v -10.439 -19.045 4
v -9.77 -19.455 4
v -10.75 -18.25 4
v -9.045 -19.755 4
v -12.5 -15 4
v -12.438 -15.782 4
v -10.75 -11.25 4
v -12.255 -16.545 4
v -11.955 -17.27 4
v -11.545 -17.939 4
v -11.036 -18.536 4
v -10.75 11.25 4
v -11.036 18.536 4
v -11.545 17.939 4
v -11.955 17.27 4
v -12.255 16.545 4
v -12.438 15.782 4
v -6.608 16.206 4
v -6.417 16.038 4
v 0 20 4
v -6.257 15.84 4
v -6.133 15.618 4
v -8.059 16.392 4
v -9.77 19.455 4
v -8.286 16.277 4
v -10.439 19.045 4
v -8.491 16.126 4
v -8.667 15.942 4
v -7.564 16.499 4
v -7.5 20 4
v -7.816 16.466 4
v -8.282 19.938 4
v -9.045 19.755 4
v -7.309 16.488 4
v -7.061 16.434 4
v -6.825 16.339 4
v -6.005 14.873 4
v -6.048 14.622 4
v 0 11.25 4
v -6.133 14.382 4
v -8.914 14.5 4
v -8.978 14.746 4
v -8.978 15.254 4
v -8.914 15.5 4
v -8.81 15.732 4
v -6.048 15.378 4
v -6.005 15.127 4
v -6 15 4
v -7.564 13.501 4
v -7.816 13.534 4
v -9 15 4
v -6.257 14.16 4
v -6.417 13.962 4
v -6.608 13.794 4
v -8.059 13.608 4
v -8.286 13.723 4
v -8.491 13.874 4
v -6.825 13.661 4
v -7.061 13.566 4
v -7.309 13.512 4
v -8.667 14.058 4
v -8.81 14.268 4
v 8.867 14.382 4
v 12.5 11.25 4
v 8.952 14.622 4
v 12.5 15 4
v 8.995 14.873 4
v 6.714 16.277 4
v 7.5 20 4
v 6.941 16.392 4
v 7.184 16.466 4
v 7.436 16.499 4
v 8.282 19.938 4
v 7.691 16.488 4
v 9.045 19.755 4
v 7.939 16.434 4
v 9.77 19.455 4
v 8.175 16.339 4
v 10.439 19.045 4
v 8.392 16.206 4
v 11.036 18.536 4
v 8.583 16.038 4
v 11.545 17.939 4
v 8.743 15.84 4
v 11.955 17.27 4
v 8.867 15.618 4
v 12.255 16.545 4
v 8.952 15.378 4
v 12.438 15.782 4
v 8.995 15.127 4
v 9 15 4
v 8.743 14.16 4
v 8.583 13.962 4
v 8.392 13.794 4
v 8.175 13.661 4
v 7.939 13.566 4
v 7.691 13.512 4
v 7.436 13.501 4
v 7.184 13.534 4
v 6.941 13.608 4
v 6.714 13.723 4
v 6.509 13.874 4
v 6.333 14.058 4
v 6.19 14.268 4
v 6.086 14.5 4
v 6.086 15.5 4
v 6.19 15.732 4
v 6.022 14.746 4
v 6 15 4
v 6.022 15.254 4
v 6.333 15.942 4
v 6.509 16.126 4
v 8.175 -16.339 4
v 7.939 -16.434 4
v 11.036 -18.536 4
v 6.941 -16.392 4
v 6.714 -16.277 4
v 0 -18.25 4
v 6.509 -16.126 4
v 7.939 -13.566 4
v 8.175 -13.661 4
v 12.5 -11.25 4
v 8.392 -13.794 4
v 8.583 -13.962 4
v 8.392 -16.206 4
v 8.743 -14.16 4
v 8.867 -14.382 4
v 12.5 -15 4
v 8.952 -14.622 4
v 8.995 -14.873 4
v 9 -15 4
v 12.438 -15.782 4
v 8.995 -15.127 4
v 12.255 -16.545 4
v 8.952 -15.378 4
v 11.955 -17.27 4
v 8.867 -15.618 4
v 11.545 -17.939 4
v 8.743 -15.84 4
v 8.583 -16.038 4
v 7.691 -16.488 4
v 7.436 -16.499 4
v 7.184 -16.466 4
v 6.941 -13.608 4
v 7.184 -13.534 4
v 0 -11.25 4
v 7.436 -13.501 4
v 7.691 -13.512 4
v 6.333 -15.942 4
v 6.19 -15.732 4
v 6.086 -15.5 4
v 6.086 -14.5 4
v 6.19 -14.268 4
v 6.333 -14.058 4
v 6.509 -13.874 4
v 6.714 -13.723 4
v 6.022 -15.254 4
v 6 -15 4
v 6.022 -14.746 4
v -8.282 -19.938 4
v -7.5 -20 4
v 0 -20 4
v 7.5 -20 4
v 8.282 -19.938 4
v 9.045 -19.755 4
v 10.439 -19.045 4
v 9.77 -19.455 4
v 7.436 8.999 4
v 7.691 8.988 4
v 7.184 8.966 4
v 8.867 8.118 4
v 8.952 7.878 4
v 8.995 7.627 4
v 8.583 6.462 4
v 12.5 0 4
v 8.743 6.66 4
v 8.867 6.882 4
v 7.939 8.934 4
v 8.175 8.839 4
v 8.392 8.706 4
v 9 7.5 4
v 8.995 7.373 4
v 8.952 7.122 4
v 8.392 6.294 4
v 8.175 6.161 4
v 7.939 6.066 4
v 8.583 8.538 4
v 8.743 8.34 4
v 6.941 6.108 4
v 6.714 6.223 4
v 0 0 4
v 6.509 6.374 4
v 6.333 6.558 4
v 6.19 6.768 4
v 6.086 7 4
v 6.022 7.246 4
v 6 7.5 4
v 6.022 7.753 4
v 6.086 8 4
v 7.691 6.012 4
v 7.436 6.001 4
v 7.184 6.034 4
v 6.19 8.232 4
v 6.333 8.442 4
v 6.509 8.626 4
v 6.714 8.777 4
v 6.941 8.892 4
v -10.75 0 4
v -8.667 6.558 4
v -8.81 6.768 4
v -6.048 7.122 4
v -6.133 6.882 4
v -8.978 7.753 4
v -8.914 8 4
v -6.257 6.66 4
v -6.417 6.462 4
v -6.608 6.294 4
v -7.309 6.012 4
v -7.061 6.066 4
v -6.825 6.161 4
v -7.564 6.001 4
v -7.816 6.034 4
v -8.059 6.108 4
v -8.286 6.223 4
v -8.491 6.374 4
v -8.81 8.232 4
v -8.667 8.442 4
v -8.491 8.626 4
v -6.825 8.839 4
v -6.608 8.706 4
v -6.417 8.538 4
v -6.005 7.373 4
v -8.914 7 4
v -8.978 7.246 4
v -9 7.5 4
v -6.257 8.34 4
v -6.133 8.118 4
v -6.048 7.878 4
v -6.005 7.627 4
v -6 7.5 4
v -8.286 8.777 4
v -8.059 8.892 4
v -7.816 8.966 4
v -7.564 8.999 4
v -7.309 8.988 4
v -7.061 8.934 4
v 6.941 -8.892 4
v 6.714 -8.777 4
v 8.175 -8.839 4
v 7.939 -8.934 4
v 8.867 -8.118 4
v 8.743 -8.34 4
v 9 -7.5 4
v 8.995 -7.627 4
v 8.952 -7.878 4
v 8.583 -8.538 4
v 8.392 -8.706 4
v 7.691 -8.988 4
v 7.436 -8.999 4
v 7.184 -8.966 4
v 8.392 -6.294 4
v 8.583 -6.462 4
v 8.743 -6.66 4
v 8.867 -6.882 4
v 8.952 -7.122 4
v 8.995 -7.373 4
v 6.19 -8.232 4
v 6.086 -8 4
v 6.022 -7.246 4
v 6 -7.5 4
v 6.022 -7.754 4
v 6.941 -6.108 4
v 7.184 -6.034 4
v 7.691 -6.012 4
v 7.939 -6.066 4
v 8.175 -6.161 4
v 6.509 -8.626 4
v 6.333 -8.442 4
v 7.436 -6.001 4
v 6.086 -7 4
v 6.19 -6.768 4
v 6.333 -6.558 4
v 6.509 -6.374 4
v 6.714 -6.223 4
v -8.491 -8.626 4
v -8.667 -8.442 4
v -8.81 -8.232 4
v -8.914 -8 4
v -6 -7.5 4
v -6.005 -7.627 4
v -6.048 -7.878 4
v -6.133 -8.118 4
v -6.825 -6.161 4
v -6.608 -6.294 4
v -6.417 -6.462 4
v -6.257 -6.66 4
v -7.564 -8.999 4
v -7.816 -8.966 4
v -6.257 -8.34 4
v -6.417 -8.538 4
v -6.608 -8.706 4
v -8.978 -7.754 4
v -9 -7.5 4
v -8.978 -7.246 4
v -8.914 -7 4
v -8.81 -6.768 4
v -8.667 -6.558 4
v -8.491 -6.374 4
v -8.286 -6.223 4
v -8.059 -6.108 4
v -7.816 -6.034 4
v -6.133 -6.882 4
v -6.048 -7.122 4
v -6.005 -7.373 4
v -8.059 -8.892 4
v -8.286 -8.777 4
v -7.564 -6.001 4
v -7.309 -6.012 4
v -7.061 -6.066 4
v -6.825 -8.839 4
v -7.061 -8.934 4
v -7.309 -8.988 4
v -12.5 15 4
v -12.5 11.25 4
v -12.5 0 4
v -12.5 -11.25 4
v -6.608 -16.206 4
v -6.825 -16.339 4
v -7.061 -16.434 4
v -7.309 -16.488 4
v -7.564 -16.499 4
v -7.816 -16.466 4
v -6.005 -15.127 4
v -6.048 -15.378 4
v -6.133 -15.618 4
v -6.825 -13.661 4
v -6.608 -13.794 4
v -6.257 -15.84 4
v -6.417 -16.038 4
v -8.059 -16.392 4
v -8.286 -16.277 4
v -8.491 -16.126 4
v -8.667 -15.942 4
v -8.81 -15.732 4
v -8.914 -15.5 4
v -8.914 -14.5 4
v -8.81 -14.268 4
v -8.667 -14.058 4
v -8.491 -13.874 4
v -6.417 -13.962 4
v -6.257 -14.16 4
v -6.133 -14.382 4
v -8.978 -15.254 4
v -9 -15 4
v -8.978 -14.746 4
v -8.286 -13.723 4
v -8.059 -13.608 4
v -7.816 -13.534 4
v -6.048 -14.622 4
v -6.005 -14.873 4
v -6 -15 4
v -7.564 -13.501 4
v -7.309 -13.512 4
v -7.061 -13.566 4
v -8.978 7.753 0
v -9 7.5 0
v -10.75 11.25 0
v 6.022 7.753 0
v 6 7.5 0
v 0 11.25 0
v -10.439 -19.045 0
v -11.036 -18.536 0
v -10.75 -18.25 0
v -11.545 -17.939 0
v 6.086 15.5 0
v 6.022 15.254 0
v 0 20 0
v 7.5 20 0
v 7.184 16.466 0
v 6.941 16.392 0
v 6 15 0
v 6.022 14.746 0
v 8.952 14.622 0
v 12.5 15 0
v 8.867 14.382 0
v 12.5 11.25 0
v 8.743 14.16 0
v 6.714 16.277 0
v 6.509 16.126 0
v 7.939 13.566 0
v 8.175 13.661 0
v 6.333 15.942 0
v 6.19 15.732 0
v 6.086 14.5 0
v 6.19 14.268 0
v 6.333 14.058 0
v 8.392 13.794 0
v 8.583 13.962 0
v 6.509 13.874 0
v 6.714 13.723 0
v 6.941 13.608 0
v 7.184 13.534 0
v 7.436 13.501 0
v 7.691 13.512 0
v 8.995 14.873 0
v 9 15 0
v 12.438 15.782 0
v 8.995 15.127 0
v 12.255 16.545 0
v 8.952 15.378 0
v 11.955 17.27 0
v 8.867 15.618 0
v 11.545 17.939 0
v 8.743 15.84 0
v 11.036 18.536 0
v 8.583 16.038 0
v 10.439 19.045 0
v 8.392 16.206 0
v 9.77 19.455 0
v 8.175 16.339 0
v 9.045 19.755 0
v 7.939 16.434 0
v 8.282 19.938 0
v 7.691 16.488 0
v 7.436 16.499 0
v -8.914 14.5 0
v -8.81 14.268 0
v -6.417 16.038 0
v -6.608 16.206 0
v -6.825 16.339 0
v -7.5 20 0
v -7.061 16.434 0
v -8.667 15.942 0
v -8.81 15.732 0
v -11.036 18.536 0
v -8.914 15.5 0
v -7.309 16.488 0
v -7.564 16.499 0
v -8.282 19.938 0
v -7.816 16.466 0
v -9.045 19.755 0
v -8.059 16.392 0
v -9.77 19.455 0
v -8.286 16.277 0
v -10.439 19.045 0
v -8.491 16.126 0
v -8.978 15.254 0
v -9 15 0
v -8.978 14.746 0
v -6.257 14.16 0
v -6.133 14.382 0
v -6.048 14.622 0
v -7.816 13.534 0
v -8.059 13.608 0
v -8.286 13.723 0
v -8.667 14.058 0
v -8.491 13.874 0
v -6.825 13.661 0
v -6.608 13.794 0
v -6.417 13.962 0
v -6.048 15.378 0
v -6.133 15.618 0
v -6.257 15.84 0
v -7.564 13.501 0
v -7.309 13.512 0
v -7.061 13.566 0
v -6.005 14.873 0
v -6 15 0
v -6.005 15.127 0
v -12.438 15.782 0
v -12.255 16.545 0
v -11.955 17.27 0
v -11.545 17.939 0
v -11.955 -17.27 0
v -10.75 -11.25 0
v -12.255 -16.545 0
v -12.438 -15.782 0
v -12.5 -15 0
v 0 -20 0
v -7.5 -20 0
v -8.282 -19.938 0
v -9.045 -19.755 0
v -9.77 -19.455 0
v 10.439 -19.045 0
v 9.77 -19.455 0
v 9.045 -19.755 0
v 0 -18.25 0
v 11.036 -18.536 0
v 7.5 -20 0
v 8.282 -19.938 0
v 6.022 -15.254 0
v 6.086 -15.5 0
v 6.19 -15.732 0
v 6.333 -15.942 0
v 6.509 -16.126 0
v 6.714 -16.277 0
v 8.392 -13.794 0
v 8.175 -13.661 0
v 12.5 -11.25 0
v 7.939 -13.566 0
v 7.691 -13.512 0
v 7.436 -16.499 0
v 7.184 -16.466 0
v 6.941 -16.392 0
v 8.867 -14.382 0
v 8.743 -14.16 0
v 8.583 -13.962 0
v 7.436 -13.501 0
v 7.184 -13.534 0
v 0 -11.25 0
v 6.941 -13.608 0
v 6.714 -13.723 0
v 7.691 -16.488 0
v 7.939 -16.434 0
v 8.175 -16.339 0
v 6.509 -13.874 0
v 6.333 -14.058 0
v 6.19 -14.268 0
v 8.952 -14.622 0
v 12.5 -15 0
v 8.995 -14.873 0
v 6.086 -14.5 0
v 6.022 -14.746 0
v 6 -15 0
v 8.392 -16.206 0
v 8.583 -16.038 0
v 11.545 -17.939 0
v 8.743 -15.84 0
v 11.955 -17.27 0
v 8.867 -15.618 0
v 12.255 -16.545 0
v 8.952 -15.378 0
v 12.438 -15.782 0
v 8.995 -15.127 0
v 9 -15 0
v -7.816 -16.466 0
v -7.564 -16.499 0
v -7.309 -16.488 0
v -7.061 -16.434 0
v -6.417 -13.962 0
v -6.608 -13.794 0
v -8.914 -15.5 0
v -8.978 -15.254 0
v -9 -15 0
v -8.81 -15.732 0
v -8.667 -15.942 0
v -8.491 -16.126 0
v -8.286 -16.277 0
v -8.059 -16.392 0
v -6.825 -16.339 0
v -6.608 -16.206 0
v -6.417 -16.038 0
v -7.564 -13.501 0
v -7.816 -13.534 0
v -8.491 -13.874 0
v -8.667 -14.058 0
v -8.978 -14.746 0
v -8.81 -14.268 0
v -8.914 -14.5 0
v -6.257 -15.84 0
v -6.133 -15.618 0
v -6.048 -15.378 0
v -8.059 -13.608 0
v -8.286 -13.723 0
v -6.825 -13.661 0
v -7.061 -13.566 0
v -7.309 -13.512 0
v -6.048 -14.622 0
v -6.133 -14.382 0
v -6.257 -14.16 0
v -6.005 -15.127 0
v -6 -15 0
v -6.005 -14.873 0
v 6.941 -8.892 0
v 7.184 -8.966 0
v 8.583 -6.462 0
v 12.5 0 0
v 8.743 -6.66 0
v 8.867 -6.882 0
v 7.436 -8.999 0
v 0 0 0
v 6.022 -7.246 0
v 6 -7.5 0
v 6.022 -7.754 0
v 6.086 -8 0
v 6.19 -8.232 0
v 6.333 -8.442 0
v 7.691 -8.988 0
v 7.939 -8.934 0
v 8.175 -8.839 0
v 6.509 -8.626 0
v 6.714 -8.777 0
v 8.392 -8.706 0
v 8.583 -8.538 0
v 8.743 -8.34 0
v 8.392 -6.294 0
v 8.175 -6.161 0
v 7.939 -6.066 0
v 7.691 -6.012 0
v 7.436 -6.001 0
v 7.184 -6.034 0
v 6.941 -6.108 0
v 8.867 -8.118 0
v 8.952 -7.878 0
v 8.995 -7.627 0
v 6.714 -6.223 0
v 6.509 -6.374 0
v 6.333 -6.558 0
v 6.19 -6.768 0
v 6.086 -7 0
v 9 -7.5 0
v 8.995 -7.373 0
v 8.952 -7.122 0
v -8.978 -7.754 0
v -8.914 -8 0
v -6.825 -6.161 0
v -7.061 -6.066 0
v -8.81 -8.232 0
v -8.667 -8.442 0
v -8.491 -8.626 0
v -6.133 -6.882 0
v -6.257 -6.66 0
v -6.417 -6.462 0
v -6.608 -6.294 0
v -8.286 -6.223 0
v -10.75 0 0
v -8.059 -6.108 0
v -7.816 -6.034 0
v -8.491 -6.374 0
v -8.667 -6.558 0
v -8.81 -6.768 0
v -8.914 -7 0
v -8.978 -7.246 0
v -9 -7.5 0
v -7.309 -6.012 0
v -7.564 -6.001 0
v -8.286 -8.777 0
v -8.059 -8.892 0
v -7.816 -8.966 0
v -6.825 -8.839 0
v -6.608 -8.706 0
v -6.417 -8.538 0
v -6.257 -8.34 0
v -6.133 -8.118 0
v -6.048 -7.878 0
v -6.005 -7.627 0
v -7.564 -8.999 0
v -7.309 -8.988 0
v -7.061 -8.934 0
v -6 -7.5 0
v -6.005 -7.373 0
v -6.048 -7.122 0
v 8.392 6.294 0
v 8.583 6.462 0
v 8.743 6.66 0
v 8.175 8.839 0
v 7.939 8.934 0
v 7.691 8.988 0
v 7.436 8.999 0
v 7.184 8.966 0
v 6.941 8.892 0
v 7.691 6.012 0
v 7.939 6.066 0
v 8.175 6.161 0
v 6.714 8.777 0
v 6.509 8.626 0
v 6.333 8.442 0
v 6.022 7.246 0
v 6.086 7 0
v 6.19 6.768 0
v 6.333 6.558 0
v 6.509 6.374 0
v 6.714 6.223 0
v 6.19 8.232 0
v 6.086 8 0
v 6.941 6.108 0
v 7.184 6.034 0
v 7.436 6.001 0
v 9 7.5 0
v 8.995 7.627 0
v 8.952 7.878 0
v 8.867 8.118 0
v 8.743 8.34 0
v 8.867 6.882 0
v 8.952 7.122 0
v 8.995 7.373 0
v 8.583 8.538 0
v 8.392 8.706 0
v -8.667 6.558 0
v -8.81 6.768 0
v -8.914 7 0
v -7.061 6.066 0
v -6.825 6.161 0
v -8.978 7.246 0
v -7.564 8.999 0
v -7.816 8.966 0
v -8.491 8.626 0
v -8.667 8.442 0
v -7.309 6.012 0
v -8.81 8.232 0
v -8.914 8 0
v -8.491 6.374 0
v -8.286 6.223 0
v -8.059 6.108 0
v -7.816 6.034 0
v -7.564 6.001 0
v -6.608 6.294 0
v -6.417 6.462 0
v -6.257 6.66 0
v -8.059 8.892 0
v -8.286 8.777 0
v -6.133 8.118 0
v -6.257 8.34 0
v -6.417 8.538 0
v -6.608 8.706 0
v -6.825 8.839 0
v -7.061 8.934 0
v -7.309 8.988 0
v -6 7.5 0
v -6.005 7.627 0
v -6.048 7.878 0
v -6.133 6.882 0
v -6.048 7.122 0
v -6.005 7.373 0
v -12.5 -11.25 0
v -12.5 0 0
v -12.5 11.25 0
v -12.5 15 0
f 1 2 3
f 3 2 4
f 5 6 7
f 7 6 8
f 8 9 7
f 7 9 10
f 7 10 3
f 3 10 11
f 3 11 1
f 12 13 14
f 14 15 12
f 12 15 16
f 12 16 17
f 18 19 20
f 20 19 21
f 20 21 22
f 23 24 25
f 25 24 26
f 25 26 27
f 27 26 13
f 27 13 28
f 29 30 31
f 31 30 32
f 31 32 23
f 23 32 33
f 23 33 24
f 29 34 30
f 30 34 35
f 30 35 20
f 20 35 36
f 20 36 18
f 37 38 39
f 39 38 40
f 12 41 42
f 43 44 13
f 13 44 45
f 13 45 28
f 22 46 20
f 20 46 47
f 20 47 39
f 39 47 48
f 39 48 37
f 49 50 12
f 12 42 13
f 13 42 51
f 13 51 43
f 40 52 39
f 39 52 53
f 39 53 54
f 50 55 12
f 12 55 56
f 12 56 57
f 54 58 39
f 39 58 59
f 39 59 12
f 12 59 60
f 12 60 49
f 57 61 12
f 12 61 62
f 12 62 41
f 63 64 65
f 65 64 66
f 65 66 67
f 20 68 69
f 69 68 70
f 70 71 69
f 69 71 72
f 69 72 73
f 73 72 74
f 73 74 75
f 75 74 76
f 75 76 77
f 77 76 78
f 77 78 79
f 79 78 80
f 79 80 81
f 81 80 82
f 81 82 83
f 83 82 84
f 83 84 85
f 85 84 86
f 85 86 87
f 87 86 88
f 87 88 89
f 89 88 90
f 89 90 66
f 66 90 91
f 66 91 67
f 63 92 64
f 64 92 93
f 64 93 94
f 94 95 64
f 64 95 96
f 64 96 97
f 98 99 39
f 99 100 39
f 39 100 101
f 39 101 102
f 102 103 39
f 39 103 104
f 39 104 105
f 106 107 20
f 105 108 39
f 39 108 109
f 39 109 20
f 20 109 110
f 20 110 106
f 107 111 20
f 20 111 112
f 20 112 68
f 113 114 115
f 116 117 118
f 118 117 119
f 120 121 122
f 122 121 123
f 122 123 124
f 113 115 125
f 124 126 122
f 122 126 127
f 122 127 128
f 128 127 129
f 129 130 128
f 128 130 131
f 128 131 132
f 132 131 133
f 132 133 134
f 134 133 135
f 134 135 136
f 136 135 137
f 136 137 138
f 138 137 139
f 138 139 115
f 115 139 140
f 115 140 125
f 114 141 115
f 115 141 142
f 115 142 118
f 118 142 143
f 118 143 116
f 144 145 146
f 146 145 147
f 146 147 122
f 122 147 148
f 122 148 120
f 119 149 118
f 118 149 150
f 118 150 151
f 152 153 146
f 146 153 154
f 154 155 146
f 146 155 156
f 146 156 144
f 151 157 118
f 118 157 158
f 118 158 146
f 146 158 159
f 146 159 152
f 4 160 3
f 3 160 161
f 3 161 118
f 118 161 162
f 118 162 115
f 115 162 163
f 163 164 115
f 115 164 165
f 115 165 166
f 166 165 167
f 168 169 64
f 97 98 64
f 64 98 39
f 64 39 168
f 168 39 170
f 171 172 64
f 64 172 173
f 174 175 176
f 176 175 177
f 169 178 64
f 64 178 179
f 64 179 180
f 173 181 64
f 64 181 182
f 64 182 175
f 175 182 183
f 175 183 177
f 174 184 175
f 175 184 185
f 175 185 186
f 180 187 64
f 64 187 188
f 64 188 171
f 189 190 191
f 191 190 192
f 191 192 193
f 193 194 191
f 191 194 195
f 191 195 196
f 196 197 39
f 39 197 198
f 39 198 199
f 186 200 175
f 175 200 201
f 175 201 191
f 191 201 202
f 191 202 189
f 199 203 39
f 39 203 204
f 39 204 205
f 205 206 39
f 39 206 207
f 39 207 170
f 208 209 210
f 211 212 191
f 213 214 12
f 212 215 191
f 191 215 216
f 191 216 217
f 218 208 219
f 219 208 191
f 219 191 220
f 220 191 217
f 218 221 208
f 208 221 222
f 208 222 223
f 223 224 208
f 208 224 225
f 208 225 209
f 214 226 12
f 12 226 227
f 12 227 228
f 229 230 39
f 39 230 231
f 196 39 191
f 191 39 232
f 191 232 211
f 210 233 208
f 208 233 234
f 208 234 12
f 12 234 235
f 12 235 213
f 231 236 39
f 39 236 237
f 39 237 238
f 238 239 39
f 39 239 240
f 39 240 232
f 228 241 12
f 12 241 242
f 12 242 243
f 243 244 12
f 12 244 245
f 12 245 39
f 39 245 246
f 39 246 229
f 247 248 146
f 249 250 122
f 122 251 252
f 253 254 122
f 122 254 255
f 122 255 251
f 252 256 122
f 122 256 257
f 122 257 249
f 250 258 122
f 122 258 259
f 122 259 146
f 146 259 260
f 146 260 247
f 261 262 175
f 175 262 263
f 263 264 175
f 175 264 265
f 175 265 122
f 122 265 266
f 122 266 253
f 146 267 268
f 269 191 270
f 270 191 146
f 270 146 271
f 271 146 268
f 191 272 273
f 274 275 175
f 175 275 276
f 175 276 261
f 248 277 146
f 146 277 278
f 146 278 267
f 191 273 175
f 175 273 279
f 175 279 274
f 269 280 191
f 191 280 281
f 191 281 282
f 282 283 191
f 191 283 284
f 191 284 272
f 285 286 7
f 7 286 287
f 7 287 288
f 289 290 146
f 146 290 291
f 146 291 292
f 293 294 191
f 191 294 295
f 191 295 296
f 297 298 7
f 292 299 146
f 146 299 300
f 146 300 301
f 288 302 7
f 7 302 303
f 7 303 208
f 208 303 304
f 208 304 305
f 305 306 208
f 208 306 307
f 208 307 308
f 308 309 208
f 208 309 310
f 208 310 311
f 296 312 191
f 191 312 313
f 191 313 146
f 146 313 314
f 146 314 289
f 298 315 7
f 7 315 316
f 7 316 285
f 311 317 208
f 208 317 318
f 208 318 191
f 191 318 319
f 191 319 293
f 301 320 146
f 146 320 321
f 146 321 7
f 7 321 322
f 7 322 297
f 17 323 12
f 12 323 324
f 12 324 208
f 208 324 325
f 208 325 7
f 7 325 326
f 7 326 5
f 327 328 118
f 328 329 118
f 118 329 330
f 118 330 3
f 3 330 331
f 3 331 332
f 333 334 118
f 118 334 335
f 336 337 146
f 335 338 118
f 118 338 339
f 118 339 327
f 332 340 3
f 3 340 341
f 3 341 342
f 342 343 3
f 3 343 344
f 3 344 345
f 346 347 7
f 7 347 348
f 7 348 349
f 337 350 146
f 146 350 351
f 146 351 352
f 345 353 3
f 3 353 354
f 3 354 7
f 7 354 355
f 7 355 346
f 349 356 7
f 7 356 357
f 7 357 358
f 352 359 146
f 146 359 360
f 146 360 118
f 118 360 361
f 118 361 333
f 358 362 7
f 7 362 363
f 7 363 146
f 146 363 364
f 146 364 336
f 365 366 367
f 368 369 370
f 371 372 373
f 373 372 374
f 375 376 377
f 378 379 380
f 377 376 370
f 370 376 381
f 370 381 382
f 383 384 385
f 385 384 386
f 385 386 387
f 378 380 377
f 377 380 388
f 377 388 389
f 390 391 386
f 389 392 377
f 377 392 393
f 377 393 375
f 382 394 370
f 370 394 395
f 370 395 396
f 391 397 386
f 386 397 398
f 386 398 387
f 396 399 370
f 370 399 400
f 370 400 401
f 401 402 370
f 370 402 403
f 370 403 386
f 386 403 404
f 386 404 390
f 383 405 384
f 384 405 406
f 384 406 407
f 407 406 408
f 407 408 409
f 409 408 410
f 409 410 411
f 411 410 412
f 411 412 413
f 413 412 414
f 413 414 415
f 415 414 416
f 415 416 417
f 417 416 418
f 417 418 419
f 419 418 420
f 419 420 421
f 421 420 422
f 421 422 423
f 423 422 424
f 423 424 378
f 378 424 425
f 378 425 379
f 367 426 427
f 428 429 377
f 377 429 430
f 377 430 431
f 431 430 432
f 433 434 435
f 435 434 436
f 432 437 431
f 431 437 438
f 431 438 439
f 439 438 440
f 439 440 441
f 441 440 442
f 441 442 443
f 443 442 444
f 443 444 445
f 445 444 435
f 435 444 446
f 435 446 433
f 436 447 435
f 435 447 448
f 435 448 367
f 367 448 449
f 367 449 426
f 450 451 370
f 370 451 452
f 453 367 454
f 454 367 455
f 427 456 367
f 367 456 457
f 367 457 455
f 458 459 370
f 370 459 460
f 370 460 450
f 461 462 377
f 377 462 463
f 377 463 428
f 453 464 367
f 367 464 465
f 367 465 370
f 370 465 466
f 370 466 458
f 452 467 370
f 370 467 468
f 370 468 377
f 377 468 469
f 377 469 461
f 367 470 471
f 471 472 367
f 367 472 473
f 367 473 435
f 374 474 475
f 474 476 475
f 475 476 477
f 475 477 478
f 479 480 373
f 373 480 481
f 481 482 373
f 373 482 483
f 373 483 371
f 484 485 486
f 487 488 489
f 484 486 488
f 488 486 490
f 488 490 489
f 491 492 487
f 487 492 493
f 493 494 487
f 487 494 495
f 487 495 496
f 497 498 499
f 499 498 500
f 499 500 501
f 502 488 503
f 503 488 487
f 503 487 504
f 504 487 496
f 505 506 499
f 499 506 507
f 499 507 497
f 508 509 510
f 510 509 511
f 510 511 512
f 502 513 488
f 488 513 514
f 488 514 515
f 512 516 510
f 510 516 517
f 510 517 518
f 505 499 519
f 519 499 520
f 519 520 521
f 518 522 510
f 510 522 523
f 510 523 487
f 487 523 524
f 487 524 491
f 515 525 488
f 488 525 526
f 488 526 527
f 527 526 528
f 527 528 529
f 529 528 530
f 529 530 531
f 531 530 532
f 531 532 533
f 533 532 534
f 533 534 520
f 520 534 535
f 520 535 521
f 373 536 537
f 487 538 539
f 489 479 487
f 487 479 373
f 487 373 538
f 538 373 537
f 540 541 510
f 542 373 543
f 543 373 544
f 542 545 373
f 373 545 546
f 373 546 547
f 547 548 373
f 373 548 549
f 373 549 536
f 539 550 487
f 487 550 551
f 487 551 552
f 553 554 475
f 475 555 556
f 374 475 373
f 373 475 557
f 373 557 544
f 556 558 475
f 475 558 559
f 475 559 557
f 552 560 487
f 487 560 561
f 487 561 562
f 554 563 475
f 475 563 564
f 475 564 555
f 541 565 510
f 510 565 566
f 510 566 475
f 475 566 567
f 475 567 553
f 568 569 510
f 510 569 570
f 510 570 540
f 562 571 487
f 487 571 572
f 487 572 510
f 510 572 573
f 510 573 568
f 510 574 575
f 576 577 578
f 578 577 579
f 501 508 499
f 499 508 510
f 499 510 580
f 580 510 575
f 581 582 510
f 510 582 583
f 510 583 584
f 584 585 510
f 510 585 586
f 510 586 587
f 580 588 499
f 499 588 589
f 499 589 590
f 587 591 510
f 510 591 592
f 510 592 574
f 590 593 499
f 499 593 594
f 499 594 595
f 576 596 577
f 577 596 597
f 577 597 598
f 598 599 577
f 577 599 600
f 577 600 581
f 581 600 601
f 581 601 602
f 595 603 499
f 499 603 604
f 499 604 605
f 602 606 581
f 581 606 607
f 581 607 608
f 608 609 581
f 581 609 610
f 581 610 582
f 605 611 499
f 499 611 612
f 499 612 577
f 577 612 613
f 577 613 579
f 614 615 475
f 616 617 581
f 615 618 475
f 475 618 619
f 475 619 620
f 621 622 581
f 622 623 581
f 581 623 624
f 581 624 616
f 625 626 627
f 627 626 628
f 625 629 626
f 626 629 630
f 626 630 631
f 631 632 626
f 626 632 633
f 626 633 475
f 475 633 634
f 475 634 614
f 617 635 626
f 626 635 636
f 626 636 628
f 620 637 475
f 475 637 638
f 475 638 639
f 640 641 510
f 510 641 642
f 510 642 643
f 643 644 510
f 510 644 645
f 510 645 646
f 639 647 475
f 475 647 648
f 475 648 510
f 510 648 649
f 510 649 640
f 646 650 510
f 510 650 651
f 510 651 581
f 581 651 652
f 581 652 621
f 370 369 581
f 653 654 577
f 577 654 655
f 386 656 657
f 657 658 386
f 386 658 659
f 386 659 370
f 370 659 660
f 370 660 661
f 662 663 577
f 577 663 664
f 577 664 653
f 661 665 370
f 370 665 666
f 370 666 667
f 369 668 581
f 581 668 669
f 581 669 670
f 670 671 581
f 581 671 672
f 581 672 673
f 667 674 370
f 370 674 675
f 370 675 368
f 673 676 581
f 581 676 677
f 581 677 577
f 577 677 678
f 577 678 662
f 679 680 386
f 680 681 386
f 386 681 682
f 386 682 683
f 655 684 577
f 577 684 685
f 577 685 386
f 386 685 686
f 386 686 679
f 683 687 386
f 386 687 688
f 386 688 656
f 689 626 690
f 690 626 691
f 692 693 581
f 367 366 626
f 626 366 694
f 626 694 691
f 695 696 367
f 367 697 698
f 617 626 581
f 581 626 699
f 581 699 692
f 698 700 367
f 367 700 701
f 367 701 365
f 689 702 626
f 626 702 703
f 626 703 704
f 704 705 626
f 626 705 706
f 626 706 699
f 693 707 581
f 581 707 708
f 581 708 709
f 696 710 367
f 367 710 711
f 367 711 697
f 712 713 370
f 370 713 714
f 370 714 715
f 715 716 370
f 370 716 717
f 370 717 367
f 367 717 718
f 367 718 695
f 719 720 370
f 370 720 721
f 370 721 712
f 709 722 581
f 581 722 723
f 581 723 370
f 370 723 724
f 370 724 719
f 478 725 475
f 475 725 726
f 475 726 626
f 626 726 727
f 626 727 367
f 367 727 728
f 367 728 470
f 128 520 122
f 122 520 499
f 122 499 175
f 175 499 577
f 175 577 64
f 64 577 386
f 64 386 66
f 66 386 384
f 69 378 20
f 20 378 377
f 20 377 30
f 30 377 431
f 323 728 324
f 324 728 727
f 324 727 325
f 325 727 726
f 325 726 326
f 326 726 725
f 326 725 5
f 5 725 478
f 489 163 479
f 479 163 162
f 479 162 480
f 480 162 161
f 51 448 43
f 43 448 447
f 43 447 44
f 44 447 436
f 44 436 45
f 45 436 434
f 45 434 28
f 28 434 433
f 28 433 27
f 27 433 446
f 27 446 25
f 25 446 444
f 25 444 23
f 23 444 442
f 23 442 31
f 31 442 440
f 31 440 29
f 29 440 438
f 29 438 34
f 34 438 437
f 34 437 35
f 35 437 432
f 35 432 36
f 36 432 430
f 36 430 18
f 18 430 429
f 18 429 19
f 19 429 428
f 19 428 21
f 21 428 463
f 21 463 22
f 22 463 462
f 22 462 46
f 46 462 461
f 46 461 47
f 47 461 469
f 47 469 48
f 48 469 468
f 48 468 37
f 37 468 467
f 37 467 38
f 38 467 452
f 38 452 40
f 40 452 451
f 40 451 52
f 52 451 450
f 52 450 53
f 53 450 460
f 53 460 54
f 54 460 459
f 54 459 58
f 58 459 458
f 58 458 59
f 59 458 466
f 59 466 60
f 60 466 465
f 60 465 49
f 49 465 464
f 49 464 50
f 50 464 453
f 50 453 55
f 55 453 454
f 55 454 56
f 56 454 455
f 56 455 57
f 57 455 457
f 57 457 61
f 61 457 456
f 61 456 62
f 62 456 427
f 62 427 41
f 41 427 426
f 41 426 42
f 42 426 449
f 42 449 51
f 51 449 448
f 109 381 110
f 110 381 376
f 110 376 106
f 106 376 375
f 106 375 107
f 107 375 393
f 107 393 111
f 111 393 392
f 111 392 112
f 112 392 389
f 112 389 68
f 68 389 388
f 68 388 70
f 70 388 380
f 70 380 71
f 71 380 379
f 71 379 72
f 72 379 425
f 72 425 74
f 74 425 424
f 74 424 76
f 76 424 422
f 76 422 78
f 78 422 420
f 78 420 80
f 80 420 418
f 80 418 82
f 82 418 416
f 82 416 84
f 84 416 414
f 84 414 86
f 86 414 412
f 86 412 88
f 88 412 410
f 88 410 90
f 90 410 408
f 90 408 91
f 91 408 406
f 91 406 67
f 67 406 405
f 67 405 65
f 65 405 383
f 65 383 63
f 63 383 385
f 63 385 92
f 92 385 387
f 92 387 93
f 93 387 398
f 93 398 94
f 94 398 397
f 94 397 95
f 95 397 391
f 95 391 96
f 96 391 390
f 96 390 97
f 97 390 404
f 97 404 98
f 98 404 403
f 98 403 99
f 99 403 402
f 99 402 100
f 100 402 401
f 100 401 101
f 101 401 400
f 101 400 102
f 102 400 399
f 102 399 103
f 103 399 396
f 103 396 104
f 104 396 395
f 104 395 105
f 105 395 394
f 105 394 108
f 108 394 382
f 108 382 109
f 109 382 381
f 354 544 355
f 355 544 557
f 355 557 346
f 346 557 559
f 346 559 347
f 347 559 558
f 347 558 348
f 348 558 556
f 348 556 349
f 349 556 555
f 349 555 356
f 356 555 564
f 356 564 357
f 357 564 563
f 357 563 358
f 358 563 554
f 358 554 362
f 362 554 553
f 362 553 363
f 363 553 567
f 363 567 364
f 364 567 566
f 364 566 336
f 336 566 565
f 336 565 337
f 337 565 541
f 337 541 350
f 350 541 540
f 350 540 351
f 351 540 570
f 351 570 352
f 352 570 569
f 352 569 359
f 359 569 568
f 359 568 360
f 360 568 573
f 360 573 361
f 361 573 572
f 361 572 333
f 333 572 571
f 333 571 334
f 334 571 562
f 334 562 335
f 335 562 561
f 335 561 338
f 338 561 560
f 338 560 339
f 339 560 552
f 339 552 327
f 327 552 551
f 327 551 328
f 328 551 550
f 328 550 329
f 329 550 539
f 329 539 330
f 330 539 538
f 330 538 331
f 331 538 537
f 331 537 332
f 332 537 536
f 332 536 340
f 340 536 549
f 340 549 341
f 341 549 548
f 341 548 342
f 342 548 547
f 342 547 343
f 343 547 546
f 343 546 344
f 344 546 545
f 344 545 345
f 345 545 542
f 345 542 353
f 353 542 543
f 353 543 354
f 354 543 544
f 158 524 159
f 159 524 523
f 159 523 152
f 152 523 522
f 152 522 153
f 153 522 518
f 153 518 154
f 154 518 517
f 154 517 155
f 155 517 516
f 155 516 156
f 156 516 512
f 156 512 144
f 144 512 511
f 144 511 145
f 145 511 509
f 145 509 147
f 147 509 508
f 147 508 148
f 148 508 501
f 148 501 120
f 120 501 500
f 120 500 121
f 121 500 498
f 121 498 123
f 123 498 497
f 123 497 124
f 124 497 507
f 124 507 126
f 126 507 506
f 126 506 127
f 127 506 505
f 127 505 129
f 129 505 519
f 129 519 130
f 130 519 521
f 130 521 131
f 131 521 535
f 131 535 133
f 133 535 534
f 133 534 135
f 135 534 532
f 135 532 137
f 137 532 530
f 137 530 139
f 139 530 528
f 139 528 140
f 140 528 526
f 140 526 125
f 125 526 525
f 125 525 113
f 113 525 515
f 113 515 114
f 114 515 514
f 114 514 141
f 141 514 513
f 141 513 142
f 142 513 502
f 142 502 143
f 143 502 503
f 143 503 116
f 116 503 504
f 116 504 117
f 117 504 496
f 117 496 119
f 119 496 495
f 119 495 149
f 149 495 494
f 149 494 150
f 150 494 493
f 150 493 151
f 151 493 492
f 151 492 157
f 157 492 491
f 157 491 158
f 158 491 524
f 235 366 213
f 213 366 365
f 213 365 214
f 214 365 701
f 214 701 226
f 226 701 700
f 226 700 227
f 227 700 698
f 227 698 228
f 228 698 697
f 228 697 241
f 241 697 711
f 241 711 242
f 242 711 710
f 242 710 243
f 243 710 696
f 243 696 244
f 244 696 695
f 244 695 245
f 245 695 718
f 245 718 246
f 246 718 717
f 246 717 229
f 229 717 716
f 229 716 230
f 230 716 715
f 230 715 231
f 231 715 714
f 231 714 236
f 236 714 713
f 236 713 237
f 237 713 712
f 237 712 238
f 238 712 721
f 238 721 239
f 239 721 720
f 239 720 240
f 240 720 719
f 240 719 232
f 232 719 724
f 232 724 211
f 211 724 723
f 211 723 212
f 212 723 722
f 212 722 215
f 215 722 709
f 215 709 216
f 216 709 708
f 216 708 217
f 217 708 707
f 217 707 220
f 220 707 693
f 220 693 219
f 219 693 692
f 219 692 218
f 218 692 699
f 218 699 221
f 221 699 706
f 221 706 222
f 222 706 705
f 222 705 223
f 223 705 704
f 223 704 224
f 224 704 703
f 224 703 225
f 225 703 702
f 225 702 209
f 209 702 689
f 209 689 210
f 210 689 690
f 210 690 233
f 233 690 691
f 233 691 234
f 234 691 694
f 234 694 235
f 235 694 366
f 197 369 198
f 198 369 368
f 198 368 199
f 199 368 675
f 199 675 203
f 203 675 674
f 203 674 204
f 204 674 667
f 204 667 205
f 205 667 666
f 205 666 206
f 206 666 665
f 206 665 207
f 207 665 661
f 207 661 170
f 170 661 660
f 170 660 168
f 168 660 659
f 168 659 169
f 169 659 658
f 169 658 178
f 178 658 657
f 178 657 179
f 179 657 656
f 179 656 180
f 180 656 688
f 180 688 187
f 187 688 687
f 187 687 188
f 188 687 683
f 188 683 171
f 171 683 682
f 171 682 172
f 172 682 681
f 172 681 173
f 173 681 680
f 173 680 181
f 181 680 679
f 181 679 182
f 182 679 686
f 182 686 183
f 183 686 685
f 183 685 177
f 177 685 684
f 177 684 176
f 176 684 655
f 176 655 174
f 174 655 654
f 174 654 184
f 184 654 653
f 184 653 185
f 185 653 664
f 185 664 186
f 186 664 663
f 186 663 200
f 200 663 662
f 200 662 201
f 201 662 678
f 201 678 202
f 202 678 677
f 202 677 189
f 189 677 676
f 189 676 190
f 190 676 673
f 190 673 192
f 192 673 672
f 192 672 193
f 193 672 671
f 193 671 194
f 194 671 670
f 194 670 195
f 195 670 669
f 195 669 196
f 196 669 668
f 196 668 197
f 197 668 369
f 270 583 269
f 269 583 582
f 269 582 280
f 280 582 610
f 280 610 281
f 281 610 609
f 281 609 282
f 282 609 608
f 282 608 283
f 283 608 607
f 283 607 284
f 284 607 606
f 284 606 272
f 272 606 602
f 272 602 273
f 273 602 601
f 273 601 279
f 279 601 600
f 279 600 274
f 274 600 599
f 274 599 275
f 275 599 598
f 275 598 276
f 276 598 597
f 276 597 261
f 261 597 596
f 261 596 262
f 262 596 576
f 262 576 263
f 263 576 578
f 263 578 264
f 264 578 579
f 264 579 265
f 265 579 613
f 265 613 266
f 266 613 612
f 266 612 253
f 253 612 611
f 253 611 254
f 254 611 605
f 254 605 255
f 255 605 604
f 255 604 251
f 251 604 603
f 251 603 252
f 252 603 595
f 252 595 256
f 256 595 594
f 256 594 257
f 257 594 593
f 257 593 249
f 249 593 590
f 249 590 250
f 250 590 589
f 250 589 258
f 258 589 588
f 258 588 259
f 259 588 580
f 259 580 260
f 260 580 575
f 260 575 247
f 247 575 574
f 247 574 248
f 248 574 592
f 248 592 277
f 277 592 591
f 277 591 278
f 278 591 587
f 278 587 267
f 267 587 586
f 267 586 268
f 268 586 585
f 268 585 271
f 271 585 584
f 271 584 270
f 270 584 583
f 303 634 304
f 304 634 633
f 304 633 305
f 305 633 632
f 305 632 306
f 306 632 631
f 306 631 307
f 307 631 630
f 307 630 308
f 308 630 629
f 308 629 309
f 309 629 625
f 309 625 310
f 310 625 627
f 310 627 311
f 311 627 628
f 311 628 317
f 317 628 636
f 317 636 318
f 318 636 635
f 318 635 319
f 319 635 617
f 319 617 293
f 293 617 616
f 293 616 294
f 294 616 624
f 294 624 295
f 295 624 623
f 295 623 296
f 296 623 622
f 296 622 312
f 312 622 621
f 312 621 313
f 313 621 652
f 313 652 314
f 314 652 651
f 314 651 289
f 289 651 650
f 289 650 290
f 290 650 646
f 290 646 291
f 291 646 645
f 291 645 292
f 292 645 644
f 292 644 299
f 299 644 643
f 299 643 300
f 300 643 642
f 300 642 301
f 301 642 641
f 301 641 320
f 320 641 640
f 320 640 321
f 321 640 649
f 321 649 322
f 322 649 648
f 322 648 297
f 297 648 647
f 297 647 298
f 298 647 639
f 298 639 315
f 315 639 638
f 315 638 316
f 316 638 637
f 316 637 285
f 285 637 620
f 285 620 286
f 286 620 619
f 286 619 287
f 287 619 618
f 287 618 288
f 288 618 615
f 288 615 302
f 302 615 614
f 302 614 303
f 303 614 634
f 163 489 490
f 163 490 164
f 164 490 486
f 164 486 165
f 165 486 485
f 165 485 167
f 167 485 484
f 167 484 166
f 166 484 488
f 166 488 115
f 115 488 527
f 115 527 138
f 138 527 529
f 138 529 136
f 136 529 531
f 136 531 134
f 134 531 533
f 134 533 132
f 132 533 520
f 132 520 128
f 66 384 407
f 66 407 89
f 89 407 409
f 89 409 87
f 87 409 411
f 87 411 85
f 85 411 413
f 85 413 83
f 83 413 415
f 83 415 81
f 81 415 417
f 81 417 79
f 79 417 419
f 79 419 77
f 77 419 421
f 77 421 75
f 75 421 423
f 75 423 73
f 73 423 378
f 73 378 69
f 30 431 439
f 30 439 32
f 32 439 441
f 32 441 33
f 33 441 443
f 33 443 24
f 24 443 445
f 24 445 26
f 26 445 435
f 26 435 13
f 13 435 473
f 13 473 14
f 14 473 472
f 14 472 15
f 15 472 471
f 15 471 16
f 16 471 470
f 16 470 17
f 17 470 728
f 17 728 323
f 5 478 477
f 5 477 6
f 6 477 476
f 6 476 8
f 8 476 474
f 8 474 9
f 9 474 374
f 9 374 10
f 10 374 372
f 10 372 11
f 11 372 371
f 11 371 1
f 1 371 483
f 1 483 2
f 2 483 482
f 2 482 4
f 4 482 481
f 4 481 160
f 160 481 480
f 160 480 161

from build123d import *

# Parameters (mm, degrees)
SKETCH_1_W      = 25
SKETCH_1_H      = 40
SKETCH_1_R      = 1.5
EXTRUDE_1_DEPTH = 4
FILLET_1_R      = 5


with BuildPart() as part:
    # 草图1 → 凸台-拉伸1 (new body)
    with BuildSketch(Plane.XY):
        Rectangle(SKETCH_1_W, SKETCH_1_H)
        with Locations((-7.5, 15)):
            Circle(SKETCH_1_R, mode=Mode.SUBTRACT)
        with Locations((7.5, 15)):
            Circle(SKETCH_1_R, mode=Mode.SUBTRACT)
        with Locations((-7.5, -15)):
            Circle(SKETCH_1_R, mode=Mode.SUBTRACT)
        with Locations((7.5, -15)):
            Circle(SKETCH_1_R, mode=Mode.SUBTRACT)
        with Locations((-7.5, 7.5)):
            Circle(SKETCH_1_R, mode=Mode.SUBTRACT)
        with Locations((7.5, 7.5)):
            Circle(SKETCH_1_R, mode=Mode.SUBTRACT)
        with Locations((7.5, -7.5)):
            Circle(SKETCH_1_R, mode=Mode.SUBTRACT)
        with Locations((-7.5, -7.5)):
            Circle(SKETCH_1_R, mode=Mode.SUBTRACT)
    extrude(amount=EXTRUDE_1_DEPTH)

    # 圆角1
    fillet_1_edges = [part.edges().sort_by_distance(p)[0] for p in [
        (12.5, -20, 2),
        (-12.5, -20, 2),
        (-12.5, 20, 2),
        (12.5, 20, 2),
    ]]
    fillet(fillet_1_edges, radius=FILLET_1_R)


solid = part.part
